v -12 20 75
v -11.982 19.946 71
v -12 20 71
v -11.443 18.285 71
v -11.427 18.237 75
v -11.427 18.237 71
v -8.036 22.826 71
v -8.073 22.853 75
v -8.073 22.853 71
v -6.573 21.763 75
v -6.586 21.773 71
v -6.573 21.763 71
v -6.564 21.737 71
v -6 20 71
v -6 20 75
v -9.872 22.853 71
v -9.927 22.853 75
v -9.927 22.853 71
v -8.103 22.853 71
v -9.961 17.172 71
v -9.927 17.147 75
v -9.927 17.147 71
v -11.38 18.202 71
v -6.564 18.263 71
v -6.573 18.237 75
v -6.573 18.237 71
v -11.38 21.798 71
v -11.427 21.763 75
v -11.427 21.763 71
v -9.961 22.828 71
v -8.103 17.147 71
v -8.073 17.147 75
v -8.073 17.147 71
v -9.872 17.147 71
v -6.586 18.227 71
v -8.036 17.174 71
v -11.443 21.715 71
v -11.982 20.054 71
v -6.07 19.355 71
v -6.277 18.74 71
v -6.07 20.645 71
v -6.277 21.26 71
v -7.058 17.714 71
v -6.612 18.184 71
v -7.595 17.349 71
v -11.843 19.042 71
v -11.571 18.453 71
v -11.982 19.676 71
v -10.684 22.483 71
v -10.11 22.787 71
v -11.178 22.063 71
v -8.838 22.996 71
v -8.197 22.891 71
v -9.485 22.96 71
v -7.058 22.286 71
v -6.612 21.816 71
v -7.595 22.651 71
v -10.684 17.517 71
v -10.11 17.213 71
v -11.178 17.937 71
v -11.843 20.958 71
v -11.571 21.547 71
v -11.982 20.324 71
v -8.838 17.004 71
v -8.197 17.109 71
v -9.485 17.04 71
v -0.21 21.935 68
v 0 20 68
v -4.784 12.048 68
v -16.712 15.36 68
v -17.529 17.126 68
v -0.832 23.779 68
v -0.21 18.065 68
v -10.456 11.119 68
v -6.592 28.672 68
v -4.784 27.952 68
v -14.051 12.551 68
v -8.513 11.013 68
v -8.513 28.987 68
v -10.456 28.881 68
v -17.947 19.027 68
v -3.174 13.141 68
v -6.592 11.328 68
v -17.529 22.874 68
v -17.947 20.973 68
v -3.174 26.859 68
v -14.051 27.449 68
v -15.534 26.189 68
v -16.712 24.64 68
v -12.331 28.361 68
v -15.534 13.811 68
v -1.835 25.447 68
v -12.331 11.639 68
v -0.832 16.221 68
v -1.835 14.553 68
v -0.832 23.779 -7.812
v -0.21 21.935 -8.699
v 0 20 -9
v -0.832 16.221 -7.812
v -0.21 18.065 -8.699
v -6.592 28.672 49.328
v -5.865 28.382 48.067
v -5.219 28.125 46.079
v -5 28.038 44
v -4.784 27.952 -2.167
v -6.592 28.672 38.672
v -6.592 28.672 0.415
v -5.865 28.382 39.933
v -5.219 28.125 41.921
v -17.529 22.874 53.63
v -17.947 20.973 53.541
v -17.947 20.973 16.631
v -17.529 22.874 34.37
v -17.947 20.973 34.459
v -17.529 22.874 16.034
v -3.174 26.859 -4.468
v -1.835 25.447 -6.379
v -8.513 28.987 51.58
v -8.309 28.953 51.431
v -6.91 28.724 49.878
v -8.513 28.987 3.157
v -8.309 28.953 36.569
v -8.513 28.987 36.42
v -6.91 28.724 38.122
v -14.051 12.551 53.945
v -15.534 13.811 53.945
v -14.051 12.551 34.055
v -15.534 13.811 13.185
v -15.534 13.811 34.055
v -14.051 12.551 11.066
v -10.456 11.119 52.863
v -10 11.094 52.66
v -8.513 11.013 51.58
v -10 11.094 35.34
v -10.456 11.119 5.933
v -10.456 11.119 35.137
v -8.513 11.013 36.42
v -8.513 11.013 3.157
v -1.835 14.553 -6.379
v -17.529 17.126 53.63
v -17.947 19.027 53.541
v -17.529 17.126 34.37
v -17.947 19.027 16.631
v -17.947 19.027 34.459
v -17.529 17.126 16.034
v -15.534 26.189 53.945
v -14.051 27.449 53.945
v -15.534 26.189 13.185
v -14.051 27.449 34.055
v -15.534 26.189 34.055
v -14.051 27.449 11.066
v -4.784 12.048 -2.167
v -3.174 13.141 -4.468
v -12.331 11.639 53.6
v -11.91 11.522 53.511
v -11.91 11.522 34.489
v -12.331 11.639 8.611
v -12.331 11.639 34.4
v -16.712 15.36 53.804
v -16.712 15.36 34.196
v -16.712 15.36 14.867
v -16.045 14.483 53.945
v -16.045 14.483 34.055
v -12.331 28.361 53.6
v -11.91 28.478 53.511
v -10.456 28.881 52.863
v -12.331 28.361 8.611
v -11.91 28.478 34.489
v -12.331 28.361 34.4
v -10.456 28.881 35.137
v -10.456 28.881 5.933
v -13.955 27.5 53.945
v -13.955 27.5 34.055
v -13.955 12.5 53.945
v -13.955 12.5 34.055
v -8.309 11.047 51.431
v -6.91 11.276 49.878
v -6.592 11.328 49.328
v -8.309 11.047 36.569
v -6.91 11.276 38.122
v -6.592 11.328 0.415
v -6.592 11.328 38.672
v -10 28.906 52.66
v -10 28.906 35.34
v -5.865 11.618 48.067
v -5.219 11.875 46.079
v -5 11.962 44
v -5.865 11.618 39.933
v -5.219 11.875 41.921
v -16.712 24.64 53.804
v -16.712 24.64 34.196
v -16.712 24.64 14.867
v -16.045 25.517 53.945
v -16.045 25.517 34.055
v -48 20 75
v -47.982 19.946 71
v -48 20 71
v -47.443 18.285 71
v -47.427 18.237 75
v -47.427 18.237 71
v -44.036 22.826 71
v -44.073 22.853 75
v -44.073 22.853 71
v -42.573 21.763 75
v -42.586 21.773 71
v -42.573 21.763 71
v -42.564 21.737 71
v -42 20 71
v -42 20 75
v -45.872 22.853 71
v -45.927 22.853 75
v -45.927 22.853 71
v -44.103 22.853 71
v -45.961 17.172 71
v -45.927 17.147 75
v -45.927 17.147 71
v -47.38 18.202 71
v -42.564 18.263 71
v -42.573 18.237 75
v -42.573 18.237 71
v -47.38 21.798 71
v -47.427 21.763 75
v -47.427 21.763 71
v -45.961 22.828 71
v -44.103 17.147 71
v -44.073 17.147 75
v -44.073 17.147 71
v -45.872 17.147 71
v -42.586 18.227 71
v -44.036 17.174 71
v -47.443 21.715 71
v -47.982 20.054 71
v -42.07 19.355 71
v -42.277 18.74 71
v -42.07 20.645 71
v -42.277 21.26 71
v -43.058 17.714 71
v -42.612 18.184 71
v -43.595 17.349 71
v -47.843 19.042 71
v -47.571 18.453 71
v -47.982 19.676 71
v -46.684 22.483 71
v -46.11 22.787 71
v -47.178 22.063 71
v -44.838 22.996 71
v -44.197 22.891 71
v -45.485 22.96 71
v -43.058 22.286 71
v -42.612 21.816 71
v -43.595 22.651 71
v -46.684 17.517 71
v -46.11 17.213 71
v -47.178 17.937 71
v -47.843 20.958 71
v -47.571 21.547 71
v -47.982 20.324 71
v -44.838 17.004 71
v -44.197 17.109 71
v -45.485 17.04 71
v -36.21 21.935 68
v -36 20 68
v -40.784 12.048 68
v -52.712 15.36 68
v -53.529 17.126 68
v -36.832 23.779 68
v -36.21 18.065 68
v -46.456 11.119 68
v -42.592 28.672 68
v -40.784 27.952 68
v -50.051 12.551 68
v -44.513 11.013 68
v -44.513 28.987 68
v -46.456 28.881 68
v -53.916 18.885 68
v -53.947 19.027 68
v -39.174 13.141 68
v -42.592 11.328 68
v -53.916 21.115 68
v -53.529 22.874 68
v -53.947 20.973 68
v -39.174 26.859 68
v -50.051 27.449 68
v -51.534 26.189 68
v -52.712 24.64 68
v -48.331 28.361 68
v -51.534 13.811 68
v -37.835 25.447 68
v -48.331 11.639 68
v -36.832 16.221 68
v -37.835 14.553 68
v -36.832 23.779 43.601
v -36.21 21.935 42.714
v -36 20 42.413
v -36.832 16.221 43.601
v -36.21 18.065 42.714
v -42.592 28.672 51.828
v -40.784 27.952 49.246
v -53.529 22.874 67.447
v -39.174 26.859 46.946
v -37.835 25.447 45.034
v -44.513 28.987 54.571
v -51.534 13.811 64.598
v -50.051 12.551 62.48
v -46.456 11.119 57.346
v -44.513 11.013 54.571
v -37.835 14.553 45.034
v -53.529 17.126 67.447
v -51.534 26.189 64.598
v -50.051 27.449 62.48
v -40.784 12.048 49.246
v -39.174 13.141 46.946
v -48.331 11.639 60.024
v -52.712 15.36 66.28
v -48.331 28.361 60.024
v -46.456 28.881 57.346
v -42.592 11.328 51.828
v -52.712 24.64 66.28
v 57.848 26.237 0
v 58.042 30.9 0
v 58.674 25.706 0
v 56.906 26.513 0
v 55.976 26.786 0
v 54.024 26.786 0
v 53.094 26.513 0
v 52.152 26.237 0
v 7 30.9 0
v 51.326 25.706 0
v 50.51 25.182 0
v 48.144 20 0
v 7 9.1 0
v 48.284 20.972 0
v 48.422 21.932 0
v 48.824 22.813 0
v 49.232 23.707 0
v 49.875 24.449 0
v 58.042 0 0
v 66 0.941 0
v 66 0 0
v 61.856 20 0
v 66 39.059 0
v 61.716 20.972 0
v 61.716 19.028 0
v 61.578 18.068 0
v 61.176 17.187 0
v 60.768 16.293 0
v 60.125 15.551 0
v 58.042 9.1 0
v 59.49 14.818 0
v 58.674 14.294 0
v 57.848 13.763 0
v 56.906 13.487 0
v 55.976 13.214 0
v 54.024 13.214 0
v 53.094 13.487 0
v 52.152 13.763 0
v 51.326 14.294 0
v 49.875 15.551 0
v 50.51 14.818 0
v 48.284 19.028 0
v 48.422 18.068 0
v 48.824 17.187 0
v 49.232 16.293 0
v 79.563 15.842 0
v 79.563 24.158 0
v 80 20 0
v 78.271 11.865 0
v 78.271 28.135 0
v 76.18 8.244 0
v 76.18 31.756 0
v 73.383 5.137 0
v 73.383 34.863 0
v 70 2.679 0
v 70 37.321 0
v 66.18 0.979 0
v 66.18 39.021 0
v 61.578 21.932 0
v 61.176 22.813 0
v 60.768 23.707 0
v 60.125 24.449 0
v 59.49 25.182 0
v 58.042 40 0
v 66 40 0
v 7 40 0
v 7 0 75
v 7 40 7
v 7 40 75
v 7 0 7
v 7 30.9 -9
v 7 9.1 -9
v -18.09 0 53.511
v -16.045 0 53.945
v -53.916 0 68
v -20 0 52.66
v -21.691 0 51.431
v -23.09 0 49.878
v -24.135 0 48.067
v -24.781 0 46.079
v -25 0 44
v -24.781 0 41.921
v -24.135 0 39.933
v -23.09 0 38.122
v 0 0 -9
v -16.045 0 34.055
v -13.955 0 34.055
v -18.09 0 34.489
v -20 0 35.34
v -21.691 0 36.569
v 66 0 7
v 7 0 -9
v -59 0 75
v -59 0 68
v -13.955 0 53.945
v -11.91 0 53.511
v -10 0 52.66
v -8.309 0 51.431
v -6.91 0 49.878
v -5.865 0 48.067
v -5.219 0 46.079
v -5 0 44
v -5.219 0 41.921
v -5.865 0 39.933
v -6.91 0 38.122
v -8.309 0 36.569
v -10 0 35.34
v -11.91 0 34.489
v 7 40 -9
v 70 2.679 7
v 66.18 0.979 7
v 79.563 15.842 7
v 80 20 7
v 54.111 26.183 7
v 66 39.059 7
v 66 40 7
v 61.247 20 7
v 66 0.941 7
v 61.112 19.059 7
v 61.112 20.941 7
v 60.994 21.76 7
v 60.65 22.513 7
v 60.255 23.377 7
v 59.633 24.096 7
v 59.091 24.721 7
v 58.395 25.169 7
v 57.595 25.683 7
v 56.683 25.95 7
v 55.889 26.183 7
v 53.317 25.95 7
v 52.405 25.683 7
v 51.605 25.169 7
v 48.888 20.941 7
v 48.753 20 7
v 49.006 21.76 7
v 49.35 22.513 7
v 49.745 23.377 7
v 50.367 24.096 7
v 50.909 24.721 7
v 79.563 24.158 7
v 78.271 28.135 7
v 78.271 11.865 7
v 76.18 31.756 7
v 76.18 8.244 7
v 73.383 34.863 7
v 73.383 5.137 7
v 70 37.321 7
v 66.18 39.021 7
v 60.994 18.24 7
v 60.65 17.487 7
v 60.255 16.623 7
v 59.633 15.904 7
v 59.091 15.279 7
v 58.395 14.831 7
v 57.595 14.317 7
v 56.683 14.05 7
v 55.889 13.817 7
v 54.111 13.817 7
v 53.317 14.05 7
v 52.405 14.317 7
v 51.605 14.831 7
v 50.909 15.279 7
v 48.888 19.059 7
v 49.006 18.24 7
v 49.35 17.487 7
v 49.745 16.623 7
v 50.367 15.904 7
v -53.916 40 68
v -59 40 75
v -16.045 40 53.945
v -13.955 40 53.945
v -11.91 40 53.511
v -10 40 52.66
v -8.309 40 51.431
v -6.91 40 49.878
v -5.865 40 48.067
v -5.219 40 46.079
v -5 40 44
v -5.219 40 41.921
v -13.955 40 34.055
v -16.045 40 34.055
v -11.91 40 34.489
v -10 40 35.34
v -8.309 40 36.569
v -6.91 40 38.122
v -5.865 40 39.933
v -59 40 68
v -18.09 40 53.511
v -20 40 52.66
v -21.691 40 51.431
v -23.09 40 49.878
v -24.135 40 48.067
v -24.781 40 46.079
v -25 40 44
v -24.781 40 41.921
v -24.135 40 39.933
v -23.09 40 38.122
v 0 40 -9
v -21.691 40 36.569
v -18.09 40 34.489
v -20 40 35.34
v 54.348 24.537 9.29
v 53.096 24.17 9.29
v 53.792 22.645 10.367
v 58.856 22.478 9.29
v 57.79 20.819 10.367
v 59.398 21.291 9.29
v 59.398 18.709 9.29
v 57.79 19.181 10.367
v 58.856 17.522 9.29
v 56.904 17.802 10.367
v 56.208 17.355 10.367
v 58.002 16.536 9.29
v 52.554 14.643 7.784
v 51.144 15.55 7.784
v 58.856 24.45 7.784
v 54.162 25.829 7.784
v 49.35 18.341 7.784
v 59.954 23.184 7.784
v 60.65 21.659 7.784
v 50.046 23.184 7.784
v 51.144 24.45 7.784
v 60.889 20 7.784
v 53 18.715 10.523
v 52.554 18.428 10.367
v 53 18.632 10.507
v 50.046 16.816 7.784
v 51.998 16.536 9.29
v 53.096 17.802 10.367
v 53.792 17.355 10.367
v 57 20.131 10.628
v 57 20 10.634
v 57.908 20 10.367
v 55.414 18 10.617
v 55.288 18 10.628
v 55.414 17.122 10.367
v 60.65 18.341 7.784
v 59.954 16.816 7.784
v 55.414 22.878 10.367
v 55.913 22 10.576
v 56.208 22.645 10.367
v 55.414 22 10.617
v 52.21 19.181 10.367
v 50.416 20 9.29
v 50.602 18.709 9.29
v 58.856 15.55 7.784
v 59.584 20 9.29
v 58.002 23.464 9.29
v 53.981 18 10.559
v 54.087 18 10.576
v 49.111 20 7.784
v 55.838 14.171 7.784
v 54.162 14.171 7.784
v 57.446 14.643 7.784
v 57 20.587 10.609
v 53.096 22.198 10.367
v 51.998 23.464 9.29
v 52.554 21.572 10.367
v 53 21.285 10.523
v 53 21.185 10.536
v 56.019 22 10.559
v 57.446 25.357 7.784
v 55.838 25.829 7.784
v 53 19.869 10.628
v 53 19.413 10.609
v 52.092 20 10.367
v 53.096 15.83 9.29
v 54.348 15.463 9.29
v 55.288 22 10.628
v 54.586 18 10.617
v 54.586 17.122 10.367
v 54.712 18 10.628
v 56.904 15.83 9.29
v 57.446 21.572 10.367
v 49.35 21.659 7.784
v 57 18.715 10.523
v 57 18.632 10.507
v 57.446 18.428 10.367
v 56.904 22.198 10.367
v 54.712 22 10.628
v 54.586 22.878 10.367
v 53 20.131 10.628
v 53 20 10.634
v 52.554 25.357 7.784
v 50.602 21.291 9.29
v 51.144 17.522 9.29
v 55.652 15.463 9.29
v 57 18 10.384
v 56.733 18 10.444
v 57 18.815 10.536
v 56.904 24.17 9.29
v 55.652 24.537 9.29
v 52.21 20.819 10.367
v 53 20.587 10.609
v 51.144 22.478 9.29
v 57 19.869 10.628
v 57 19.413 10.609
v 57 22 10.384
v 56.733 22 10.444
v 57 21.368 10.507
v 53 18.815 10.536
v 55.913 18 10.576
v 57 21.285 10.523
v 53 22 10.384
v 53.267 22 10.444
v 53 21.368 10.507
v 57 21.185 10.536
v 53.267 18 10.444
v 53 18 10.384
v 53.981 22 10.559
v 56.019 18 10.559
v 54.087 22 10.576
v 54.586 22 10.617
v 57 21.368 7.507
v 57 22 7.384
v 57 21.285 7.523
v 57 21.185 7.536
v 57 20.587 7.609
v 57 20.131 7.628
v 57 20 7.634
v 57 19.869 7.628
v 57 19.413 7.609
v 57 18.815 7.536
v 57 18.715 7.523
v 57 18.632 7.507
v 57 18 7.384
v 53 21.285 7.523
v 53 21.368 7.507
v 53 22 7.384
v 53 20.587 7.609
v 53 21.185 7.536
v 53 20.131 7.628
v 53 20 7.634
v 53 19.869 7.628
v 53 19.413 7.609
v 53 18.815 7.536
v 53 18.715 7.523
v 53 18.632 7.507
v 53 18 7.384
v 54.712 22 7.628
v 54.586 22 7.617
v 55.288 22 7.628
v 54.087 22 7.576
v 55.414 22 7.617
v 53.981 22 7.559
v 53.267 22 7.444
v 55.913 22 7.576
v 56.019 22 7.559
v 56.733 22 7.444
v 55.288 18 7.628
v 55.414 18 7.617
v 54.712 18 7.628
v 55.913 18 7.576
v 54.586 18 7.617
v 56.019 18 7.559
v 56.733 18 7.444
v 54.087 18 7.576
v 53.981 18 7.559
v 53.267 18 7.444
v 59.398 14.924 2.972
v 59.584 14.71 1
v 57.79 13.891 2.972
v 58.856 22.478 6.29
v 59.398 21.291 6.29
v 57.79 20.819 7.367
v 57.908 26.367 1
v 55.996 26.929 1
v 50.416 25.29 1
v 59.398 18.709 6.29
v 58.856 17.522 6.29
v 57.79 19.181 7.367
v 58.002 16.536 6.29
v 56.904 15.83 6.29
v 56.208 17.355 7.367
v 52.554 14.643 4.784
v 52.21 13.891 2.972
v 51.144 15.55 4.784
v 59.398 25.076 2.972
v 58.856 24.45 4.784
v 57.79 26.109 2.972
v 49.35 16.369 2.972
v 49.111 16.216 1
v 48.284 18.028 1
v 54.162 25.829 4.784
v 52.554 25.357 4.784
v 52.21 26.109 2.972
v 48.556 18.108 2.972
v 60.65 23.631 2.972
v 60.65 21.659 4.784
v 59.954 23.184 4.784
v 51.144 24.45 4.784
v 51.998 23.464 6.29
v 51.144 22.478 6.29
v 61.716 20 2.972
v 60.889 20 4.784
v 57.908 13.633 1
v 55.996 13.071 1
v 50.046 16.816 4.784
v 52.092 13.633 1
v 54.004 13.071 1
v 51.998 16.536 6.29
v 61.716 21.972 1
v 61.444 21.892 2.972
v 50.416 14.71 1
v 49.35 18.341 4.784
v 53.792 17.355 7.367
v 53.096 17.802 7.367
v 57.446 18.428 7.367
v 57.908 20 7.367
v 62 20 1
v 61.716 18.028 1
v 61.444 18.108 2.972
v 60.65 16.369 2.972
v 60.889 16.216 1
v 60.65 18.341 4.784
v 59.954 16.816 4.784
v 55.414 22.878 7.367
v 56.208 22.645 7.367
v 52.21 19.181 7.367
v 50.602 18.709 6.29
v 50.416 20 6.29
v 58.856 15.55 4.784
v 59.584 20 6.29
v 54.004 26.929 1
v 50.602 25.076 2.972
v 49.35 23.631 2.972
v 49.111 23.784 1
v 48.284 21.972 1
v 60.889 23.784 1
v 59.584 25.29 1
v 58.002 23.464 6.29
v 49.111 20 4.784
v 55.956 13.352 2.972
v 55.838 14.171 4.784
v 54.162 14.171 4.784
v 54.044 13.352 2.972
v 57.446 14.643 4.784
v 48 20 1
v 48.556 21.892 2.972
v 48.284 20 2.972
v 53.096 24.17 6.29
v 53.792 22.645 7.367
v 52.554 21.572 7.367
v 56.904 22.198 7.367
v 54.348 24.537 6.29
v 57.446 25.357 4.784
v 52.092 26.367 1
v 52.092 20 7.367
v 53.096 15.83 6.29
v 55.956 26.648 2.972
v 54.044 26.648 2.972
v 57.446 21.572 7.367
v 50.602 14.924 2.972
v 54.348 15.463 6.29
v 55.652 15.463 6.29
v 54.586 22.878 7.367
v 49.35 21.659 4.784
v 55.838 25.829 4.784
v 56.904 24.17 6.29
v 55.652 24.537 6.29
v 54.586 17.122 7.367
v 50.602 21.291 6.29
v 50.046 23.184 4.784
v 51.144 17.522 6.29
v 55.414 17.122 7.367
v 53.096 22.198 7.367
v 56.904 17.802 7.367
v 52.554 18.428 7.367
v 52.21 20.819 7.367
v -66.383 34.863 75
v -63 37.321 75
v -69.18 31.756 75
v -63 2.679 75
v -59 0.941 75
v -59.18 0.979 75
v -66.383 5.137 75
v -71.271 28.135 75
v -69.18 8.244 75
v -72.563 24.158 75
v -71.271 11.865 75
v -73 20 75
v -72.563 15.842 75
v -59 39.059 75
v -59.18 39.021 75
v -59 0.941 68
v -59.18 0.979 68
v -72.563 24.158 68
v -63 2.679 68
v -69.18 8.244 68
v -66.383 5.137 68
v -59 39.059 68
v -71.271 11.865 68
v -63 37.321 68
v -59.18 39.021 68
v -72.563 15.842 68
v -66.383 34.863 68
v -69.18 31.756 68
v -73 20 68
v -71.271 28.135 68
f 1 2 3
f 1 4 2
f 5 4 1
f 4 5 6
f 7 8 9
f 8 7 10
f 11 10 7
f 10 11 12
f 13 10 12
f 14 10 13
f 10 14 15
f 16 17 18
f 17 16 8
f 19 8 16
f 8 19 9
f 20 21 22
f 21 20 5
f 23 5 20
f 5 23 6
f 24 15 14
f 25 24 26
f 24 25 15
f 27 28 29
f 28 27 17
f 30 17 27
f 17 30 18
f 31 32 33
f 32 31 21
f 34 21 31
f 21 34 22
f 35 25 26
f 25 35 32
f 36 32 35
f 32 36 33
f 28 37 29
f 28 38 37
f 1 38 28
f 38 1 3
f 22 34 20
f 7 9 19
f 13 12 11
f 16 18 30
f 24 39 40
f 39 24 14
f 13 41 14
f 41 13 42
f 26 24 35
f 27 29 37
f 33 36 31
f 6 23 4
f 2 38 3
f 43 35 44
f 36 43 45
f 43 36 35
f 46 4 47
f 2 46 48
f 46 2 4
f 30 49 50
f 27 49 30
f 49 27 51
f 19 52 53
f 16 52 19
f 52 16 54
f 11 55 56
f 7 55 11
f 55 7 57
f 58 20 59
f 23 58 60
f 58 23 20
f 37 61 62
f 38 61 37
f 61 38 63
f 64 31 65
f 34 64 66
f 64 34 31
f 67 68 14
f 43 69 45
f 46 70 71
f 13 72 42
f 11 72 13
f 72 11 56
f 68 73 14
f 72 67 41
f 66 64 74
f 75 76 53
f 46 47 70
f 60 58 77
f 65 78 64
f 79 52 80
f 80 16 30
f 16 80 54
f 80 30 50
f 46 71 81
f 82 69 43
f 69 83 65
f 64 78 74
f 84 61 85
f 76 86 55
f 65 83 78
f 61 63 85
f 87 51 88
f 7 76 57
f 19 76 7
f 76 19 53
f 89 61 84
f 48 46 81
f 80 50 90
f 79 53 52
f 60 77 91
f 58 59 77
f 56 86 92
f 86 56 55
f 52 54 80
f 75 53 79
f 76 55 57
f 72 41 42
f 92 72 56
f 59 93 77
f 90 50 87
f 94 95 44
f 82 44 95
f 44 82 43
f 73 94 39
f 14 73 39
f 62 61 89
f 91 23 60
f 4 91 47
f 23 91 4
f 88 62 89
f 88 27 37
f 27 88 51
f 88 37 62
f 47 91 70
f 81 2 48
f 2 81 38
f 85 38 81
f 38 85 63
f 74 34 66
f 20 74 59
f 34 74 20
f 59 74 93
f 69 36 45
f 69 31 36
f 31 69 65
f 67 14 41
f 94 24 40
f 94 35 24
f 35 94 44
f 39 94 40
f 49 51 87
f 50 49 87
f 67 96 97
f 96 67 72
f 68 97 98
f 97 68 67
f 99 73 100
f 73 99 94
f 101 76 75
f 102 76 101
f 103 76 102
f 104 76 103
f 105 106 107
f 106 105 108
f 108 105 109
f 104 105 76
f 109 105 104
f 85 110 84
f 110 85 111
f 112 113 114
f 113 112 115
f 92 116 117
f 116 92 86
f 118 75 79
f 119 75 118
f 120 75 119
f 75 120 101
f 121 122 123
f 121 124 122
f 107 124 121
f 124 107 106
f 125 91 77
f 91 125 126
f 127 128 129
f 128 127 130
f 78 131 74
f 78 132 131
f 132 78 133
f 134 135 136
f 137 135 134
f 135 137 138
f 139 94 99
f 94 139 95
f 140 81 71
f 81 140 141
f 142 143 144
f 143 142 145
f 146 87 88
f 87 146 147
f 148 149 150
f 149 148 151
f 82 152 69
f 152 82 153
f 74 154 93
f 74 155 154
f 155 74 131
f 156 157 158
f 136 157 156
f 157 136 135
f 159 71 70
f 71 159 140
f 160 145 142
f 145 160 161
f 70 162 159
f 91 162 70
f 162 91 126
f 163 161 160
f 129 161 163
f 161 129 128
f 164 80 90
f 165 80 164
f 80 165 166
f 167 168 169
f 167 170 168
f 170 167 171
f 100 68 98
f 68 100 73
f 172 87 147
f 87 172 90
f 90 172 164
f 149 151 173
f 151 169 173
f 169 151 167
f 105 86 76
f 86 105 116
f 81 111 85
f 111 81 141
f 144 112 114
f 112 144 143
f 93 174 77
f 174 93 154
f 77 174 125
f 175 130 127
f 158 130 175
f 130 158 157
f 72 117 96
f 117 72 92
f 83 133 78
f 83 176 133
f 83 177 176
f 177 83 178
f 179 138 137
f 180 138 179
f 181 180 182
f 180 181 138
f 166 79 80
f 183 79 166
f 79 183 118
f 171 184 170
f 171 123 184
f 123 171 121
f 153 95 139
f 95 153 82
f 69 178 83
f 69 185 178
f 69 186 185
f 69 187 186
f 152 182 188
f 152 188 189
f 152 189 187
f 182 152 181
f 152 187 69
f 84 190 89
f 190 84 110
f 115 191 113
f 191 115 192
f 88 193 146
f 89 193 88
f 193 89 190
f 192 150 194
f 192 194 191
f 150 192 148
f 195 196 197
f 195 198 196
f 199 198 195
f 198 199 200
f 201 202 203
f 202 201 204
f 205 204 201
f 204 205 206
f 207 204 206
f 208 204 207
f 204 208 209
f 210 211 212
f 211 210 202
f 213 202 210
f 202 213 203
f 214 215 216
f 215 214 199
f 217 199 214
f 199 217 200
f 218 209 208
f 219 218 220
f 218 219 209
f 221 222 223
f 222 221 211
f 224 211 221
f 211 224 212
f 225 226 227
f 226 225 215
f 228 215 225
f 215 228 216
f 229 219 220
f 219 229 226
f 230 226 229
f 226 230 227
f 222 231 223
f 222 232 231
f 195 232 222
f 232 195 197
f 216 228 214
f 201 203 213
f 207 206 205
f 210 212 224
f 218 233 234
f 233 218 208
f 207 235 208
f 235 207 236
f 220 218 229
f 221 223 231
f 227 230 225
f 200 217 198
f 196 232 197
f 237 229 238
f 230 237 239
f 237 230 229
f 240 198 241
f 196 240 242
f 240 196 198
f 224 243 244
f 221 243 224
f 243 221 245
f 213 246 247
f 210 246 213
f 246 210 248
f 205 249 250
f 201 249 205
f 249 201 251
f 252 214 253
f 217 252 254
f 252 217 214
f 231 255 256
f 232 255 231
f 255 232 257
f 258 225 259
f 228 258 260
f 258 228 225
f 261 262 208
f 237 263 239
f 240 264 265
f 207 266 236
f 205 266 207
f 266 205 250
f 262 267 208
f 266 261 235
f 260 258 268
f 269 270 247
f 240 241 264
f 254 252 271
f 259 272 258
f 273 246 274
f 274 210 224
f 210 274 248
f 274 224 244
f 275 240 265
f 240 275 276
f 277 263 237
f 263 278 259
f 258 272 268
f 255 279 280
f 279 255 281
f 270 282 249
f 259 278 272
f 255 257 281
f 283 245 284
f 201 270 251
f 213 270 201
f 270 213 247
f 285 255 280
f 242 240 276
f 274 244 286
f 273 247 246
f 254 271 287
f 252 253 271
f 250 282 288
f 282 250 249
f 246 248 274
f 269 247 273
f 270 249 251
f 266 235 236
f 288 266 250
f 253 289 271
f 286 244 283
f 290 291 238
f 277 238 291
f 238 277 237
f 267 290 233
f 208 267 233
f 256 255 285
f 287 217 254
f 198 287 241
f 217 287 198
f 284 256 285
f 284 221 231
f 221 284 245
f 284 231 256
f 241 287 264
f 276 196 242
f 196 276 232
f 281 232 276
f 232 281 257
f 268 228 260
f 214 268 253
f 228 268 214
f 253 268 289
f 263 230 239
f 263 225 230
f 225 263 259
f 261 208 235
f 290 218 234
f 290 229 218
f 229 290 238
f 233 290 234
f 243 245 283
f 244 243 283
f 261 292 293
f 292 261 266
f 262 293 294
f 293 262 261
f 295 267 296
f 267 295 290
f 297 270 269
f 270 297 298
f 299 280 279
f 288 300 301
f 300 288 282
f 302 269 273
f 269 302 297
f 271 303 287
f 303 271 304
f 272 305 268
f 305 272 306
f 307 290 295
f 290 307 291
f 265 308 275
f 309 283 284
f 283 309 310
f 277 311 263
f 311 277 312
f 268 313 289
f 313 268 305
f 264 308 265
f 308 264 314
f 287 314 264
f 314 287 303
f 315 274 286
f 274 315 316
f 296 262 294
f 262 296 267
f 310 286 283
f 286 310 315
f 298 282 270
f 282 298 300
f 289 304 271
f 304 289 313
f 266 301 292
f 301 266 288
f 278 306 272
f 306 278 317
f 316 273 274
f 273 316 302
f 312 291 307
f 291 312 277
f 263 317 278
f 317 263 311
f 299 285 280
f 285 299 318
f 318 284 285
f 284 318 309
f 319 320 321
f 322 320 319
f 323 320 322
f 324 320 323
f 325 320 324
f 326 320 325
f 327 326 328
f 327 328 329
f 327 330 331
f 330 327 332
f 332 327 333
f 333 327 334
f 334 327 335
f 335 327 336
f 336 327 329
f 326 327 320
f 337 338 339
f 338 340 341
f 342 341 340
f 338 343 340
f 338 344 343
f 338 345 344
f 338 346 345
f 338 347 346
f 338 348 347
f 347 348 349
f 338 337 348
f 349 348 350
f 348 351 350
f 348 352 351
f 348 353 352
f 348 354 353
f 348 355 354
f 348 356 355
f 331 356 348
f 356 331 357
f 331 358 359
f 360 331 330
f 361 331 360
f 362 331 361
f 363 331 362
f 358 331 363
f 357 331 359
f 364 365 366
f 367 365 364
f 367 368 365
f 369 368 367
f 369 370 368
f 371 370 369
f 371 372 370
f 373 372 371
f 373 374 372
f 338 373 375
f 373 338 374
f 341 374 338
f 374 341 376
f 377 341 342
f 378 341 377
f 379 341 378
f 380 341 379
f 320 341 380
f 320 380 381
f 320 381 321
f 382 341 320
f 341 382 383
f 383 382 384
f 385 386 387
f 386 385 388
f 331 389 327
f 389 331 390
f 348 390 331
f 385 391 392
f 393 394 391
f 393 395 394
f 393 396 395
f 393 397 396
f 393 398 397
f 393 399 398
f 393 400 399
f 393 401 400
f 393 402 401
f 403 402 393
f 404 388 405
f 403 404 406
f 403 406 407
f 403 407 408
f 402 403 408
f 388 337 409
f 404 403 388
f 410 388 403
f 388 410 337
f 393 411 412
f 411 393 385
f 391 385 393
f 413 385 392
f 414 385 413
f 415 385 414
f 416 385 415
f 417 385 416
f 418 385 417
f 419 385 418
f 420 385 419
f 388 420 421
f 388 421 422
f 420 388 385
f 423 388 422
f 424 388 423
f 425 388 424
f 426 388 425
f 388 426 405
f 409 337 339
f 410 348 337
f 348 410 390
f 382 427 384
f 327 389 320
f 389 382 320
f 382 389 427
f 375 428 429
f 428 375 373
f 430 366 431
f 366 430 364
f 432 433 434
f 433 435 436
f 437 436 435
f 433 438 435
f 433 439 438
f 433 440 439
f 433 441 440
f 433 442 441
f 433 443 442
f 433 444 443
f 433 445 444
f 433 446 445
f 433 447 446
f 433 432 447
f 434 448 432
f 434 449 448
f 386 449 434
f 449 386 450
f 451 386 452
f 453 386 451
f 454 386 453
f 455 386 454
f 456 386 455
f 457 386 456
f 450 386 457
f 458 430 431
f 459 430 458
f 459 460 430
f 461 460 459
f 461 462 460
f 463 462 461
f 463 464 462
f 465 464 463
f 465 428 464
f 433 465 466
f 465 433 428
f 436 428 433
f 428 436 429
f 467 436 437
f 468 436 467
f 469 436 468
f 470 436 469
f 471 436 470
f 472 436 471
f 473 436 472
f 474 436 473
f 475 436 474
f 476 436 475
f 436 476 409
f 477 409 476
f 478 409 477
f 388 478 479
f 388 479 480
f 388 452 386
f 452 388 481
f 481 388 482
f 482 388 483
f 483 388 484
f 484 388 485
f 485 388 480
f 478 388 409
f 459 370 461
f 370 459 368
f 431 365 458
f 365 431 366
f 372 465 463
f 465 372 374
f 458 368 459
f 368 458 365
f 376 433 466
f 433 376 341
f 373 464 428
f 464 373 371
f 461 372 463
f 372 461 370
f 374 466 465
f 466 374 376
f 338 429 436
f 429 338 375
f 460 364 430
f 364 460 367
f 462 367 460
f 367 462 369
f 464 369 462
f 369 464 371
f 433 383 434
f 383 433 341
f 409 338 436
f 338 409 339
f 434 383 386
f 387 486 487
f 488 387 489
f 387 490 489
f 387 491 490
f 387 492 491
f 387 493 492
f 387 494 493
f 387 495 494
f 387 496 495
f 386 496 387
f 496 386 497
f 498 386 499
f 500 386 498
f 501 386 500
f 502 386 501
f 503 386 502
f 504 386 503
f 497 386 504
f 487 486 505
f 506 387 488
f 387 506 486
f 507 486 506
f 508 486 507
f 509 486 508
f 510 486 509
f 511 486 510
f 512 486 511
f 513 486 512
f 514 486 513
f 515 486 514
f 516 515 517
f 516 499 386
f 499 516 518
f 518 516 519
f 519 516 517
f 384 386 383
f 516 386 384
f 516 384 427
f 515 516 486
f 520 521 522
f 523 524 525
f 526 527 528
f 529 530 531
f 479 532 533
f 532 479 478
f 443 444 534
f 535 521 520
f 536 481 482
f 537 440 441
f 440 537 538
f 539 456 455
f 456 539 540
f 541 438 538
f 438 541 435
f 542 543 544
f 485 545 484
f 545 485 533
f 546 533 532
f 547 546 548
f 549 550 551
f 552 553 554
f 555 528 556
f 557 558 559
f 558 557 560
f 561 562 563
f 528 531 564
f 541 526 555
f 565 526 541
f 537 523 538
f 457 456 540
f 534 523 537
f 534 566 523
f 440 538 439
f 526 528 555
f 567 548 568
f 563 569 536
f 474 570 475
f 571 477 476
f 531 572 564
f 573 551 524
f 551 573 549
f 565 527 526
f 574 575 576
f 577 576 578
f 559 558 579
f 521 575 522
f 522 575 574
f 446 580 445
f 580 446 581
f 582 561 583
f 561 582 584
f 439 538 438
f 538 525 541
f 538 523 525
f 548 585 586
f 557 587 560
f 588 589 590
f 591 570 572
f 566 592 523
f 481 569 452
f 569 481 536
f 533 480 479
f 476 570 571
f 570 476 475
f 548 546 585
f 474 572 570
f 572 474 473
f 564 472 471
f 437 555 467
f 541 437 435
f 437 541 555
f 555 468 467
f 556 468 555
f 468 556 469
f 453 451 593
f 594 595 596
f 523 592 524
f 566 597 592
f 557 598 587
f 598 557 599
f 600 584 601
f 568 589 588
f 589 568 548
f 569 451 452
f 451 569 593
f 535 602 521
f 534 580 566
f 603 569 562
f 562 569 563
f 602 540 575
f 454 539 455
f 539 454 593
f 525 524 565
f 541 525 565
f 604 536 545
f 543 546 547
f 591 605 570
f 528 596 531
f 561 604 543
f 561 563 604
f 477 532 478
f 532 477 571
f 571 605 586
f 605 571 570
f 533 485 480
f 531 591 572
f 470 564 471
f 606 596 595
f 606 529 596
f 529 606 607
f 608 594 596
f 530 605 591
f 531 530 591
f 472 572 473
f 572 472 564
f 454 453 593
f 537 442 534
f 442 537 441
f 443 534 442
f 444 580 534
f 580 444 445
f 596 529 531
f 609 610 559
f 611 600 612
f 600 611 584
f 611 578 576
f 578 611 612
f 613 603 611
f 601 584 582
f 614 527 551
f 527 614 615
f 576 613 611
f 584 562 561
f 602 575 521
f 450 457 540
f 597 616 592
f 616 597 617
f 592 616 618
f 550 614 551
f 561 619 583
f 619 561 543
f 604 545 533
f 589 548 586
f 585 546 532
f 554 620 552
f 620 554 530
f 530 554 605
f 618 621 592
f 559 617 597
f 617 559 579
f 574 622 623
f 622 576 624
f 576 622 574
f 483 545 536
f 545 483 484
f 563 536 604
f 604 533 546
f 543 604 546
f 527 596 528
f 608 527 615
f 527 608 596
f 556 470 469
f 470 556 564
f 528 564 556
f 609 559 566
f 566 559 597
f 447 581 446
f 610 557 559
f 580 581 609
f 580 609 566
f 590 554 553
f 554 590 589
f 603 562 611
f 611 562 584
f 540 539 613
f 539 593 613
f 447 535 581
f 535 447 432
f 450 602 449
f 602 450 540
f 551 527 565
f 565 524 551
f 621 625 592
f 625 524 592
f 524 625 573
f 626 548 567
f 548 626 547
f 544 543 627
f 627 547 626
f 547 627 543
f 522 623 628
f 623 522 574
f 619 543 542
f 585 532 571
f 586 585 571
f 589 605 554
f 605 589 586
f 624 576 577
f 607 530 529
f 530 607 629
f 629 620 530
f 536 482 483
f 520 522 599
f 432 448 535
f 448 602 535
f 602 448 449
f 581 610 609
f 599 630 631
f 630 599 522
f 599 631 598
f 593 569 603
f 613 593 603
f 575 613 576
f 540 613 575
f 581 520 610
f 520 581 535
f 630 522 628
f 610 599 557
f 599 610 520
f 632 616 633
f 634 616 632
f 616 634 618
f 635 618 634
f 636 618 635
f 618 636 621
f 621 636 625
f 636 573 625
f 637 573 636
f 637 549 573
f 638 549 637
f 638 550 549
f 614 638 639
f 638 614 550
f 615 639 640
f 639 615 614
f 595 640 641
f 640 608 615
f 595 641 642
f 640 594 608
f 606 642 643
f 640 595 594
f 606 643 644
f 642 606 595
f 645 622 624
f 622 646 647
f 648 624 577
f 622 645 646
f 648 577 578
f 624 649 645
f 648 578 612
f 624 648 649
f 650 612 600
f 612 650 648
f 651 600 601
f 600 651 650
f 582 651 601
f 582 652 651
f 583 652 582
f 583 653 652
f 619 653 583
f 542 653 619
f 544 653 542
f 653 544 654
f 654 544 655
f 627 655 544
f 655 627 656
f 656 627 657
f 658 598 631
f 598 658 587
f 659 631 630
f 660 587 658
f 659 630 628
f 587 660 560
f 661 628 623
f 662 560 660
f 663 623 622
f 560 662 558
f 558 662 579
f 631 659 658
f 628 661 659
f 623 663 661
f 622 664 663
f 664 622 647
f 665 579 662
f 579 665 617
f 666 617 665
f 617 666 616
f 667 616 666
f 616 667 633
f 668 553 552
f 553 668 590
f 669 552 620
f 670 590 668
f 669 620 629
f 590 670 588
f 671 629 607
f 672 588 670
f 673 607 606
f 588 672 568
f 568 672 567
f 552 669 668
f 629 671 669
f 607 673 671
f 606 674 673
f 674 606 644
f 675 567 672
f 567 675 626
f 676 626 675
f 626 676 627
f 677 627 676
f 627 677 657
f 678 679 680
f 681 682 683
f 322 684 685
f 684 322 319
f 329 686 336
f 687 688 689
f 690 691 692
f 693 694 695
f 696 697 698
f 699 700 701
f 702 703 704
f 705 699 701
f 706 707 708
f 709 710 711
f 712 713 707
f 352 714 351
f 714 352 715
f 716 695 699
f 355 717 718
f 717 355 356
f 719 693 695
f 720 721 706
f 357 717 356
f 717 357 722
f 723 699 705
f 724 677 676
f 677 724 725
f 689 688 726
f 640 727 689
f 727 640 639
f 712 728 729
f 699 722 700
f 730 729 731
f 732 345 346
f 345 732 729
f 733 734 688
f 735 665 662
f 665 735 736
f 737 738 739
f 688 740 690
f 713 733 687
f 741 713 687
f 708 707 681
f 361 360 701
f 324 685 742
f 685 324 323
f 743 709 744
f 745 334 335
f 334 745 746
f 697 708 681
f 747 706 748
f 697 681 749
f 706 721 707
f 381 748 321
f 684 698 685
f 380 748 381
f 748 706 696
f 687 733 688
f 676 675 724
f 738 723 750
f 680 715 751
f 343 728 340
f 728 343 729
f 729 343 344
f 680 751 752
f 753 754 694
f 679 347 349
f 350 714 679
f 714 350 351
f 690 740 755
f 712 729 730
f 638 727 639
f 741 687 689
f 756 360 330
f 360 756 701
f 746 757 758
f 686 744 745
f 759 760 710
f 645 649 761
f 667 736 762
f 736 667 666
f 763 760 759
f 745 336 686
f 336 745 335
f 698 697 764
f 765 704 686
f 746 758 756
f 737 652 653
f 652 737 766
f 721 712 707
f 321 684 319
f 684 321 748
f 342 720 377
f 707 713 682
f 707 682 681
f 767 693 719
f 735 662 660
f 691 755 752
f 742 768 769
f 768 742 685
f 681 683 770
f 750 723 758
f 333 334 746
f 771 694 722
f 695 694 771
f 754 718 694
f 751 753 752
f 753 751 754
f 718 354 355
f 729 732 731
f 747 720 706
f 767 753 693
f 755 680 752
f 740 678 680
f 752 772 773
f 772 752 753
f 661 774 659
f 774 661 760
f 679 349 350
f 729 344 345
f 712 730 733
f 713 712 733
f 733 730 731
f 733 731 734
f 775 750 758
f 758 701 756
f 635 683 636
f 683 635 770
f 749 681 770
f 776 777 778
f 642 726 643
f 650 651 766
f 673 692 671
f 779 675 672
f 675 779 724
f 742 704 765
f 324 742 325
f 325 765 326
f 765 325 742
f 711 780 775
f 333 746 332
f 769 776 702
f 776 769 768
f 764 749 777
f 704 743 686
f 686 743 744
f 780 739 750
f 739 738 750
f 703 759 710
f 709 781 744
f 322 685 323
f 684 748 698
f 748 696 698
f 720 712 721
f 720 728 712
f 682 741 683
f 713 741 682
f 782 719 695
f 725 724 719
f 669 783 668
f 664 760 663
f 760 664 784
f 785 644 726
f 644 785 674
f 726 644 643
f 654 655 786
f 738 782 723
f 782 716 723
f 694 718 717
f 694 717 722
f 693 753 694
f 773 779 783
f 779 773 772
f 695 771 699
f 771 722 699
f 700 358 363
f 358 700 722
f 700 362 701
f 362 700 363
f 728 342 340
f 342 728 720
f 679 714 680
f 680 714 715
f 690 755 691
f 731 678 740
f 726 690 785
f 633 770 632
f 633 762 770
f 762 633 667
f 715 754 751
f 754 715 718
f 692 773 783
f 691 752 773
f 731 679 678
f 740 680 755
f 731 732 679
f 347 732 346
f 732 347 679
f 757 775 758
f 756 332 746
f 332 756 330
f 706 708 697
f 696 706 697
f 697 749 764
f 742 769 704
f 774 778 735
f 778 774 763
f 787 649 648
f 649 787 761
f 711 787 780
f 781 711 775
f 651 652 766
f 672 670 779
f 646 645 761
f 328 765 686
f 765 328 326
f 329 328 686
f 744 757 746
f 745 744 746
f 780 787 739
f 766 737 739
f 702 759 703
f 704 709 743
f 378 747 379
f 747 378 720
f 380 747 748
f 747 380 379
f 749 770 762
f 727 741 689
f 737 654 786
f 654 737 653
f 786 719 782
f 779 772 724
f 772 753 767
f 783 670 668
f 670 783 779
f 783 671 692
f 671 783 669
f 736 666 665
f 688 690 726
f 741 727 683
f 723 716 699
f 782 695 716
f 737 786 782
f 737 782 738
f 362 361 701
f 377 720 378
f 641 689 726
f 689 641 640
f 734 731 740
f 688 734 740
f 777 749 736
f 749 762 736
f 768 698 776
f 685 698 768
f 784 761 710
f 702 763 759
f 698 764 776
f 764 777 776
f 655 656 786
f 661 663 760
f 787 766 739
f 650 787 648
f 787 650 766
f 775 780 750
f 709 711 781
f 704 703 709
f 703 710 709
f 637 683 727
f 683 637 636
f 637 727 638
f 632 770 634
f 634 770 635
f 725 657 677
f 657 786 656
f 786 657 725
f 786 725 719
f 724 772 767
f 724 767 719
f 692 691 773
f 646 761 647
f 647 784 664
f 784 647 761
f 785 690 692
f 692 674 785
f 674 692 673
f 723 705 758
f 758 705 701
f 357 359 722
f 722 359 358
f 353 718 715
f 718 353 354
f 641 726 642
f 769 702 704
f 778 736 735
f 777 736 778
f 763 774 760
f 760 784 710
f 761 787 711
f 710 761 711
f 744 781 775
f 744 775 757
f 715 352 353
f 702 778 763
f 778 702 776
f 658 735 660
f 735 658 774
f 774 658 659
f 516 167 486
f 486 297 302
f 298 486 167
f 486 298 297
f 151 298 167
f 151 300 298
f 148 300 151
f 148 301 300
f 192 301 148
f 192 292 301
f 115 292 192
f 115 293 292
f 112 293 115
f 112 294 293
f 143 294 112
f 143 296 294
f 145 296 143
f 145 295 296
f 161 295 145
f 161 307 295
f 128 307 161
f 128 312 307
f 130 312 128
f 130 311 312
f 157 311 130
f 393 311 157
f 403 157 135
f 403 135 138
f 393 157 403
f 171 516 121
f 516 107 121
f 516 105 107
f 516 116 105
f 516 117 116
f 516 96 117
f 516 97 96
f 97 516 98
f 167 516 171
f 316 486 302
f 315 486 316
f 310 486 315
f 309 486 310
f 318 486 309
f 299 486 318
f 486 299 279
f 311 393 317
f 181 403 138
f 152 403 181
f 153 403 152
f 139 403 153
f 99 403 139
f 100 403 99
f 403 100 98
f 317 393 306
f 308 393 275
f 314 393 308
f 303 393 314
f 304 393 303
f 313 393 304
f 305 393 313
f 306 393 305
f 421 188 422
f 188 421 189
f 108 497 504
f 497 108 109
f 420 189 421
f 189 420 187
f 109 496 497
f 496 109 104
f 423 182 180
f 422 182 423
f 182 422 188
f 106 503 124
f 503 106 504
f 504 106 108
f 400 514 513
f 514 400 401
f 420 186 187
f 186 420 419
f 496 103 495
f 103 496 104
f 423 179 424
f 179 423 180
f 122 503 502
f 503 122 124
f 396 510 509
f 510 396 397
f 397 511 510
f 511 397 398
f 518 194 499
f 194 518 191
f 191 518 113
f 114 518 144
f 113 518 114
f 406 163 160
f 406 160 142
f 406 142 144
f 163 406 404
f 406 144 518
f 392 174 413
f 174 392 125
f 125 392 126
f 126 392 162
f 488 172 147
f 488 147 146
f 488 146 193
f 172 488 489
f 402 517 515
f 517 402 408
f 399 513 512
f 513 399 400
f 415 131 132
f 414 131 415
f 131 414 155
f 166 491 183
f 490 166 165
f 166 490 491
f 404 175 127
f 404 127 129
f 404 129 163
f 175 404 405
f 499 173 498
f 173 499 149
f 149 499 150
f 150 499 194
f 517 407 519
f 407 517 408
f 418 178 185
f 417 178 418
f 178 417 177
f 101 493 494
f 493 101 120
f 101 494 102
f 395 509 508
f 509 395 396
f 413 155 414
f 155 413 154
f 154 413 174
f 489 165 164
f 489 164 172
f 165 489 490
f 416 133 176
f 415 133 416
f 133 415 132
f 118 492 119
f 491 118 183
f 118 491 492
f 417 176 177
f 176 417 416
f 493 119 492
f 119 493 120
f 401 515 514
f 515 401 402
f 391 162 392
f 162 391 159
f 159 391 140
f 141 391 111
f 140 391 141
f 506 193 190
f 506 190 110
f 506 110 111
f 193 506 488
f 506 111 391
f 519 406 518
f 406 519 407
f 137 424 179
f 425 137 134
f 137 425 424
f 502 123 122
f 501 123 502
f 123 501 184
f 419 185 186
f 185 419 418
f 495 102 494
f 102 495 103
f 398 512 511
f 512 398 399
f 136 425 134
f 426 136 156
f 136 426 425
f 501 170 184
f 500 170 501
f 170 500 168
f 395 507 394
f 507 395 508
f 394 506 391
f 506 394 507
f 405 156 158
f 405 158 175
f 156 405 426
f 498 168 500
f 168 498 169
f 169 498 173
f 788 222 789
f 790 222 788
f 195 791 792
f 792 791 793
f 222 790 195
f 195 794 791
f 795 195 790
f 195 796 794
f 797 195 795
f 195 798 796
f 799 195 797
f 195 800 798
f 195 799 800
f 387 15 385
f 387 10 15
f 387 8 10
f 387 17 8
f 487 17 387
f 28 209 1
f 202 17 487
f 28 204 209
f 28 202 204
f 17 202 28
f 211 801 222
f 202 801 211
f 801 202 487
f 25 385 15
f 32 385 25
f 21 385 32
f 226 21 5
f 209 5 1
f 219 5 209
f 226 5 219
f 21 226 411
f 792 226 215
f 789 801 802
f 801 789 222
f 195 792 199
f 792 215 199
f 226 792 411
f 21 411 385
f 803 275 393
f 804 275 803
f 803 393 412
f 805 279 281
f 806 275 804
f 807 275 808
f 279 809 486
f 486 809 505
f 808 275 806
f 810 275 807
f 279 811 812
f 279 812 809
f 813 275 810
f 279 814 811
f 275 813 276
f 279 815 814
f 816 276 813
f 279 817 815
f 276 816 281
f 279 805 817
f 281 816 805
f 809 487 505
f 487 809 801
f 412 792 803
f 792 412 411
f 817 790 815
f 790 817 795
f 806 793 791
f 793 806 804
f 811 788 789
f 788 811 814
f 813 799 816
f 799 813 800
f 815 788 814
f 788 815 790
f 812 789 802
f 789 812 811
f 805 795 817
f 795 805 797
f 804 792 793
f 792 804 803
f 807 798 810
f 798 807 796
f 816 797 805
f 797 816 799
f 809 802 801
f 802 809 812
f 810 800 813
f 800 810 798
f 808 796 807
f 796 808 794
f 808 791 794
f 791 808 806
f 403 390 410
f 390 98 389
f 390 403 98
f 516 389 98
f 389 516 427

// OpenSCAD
// general 
piece_strength = 7;
bonding_margin = 1;
total_width= 40;


// piece 2 params
extra_depth = 9;
actual_p2_z = 75;
p2_x = piece_strength;
p2_y = 40;
p2_z = actual_p2_z + extra_depth;
p2_offset_x = 0;
p2_offset_y = 0;
p2_offset_z = -extra_depth;

// piece 1 params
p1_x = 60;
p1_y = total_width;
p1_z = piece_strength;
p1_offset_x = -p1_x+bonding_margin;
p1_offset_y = 0;
p1_offset_z = actual_p2_z-p1_z;

// piece 3 params
p3_x = 60;
p3_y = total_width;
p3_z = piece_strength;

p3_offset_x = piece_strength -bonding_margin;
p3_offset_y = 0;
p3_offset_z = 0;

// piece 4 params
p4_x = p3_x;
p4_y = piece_strength*1.3;
p4_z = extra_depth;
p4a_offset_x = piece_strength;
p4a_offset_y = 0;
p4a_offset_z = -p4_z;
p4b_offset_x = p4a_offset_x;
p4b_offset_y = p2_y - p4_y;
p4b_offset_z = p4a_offset_z;
p4_sub_x = 30;
p4_sub_y = p4_y+2;
p4_sub_z = 100;

// piece 5 params
p5_x = p1_x-5;
p5_y = total_width;
p5_z = p2_z-1;
p5_offset_x = 0;
p5_offset_y = 0;
p5_offset_z = -extra_depth;
p5_sub_x = 300;
p5_sub_y = p5_y+2;
p5_sub_z = 100;


// piece 6 params
p6_length = total_width + 10;
p6_offset_x = -15;
p6_offset_y = -5;
p6_offset_z = 44;
p6_radius = 10;


// piece 7 params
p7_radius = 7;
p7_offset_x = p3_x + p2_x - p7_radius - 5;
p7_offset_y = p3_y/2;
p7_offset_z = p3_z-3;

// piece 8 params
p8_x = 4;
p8_y = 4;
p8_z = 1000;
p8_offset_x = p7_offset_x - p8_x/2;
p8_offset_y = p7_offset_y - p8_y/2;
p8_offset_z = -p8_z/2;


// piece 11 params
p11_length = piece_strength;
p11_radius = total_width/2;
p11_offset_x = p3_x;
p11_offset_y = p11_radius;
p11_offset_z = 0;

// piece 12 params
p12_length = p11_length;
p12_radius = p11_radius;
p12_offset_x = - p1_x + piece_strength;
p12_offset_y = p11_radius;
p12_offset_z = p1_offset_z;

// piece 9-10 params
phole_inner_radius= 3;
phole_outer_radius= 9;
pcyla_length = 4 + 2;
pcylb_length = 3;
pcylc_length = 100;
p9_offset_x = -p1_x/2 - 15;
p9_offset_y = total_width/2;
p9_offset_z = p2_z - piece_strength- pcylb_length - pcyla_length ;
p10_offset_x = p9_offset_x +36;
p10_offset_y = p9_offset_y;
p10_offset_z = p9_offset_z;


// piece 2
color("green")
translate([ p2_offset_x,  p2_offset_y, p2_offset_z])
cube([p2_x, p2_y, p2_z]);


// piece 1
module p1(){
color("red")
translate([ p1_offset_x,  p1_offset_y, p1_offset_z])
cube([p1_x,p1_y,p1_z]);
}

// piece 12
module p12() {   
  translate([ p12_offset_x,  p12_offset_y, p12_offset_z])
  cylinder( p12_length, p12_radius, p12_radius);
}


module hole_9_10(){
 // cyl a
 translate([0, 0,pcylb_length])
 cylinder(pcyla_length,phole_inner_radius, phole_inner_radius);
 // cyl b
 translate([0, 0,0])
 cylinder(pcylb_length,phole_outer_radius, phole_inner_radius);
 // cyl c
 translate([0, 0,-pcylc_length])
 cylinder(pcylc_length,phole_outer_radius, phole_outer_radius);
}


// piece 5
module p5(){
 color("black")
 rotate([0,0,180])
 translate([ 0, -p5_y, 0])
 difference(){
  cube([p5_x, p5_y, p5_z]);
  translate([0,-1,0])
  rotate([0, 35, 0])
  cube([p5_sub_x, p5_sub_y, p5_sub_z]);
 }  
}

// piece 6
module p6(){
  translate([ p6_offset_x,  p6_offset_y, p6_offset_z])
  rotate( [-90, 0, 0])
  cylinder( p6_length, p6_radius, p6_radius);
}


module p1_56_12(){
 p1();
 p12();   
 difference() {
  translate([ p5_offset_x,  p5_offset_y, p5_offset_z])
  p5();
  p6();
 };

}
module p1_56_910_12(){
  difference() {
   p1_56_12();
   difference() {
    // hole 10
    translate([ p10_offset_x,
       p10_offset_y,
       p10_offset_z])
    hole_9_10();
   }
   // hole 9
   translate([ p9_offset_x,  p9_offset_y, p9_offset_z])
   hole_9_10();
  }
  
}




// piece 4
module p4(){
 color("black")
 difference(){
  cube([p4_x, p4_y, p4_z]);
  translate([0,-1,0])
  rotate([0, 80, 0])
  cube([p4_sub_x, p4_sub_y, p4_sub_z]);
 }  
}

module p11() {   
  translate([ p11_offset_x,  p11_offset_y, p11_offset_z])
  cylinder( p11_length, p11_radius, p11_radius);
}

module p3_11_7(){
p11();
// piece 3
color("blue")
translate([ p3_offset_x,  p3_offset_y, p3_offset_z])
cube([p3_x, p3_y, p3_z]);
// piece 7
translate([ p7_offset_x,  p7_offset_y, p7_offset_z])
sphere(r=p7_radius);
}
module hole_8(){
 translate([ p8_offset_x,    p8_offset_y, p8_offset_z])
 cube([p8_x, p8_y, p8_z]);
}

module p34_78_11(){

// piece 4.a
translate([ p4a_offset_x,  p4a_offset_y, p4a_offset_z])
p4();
// piece 4.b
translate([ p4b_offset_x,  p4b_offset_y, p4b_offset_z])
p4();
    
difference() {
 difference() {    
  p3_11_7();
  hole_8();
 };
 // piece 7
 translate([ p7_offset_x,  p7_offset_y, p7_offset_z-3])
 sphere(r=p7_radius);
}
    
}






p1_56_910_12();
p34_78_11();
